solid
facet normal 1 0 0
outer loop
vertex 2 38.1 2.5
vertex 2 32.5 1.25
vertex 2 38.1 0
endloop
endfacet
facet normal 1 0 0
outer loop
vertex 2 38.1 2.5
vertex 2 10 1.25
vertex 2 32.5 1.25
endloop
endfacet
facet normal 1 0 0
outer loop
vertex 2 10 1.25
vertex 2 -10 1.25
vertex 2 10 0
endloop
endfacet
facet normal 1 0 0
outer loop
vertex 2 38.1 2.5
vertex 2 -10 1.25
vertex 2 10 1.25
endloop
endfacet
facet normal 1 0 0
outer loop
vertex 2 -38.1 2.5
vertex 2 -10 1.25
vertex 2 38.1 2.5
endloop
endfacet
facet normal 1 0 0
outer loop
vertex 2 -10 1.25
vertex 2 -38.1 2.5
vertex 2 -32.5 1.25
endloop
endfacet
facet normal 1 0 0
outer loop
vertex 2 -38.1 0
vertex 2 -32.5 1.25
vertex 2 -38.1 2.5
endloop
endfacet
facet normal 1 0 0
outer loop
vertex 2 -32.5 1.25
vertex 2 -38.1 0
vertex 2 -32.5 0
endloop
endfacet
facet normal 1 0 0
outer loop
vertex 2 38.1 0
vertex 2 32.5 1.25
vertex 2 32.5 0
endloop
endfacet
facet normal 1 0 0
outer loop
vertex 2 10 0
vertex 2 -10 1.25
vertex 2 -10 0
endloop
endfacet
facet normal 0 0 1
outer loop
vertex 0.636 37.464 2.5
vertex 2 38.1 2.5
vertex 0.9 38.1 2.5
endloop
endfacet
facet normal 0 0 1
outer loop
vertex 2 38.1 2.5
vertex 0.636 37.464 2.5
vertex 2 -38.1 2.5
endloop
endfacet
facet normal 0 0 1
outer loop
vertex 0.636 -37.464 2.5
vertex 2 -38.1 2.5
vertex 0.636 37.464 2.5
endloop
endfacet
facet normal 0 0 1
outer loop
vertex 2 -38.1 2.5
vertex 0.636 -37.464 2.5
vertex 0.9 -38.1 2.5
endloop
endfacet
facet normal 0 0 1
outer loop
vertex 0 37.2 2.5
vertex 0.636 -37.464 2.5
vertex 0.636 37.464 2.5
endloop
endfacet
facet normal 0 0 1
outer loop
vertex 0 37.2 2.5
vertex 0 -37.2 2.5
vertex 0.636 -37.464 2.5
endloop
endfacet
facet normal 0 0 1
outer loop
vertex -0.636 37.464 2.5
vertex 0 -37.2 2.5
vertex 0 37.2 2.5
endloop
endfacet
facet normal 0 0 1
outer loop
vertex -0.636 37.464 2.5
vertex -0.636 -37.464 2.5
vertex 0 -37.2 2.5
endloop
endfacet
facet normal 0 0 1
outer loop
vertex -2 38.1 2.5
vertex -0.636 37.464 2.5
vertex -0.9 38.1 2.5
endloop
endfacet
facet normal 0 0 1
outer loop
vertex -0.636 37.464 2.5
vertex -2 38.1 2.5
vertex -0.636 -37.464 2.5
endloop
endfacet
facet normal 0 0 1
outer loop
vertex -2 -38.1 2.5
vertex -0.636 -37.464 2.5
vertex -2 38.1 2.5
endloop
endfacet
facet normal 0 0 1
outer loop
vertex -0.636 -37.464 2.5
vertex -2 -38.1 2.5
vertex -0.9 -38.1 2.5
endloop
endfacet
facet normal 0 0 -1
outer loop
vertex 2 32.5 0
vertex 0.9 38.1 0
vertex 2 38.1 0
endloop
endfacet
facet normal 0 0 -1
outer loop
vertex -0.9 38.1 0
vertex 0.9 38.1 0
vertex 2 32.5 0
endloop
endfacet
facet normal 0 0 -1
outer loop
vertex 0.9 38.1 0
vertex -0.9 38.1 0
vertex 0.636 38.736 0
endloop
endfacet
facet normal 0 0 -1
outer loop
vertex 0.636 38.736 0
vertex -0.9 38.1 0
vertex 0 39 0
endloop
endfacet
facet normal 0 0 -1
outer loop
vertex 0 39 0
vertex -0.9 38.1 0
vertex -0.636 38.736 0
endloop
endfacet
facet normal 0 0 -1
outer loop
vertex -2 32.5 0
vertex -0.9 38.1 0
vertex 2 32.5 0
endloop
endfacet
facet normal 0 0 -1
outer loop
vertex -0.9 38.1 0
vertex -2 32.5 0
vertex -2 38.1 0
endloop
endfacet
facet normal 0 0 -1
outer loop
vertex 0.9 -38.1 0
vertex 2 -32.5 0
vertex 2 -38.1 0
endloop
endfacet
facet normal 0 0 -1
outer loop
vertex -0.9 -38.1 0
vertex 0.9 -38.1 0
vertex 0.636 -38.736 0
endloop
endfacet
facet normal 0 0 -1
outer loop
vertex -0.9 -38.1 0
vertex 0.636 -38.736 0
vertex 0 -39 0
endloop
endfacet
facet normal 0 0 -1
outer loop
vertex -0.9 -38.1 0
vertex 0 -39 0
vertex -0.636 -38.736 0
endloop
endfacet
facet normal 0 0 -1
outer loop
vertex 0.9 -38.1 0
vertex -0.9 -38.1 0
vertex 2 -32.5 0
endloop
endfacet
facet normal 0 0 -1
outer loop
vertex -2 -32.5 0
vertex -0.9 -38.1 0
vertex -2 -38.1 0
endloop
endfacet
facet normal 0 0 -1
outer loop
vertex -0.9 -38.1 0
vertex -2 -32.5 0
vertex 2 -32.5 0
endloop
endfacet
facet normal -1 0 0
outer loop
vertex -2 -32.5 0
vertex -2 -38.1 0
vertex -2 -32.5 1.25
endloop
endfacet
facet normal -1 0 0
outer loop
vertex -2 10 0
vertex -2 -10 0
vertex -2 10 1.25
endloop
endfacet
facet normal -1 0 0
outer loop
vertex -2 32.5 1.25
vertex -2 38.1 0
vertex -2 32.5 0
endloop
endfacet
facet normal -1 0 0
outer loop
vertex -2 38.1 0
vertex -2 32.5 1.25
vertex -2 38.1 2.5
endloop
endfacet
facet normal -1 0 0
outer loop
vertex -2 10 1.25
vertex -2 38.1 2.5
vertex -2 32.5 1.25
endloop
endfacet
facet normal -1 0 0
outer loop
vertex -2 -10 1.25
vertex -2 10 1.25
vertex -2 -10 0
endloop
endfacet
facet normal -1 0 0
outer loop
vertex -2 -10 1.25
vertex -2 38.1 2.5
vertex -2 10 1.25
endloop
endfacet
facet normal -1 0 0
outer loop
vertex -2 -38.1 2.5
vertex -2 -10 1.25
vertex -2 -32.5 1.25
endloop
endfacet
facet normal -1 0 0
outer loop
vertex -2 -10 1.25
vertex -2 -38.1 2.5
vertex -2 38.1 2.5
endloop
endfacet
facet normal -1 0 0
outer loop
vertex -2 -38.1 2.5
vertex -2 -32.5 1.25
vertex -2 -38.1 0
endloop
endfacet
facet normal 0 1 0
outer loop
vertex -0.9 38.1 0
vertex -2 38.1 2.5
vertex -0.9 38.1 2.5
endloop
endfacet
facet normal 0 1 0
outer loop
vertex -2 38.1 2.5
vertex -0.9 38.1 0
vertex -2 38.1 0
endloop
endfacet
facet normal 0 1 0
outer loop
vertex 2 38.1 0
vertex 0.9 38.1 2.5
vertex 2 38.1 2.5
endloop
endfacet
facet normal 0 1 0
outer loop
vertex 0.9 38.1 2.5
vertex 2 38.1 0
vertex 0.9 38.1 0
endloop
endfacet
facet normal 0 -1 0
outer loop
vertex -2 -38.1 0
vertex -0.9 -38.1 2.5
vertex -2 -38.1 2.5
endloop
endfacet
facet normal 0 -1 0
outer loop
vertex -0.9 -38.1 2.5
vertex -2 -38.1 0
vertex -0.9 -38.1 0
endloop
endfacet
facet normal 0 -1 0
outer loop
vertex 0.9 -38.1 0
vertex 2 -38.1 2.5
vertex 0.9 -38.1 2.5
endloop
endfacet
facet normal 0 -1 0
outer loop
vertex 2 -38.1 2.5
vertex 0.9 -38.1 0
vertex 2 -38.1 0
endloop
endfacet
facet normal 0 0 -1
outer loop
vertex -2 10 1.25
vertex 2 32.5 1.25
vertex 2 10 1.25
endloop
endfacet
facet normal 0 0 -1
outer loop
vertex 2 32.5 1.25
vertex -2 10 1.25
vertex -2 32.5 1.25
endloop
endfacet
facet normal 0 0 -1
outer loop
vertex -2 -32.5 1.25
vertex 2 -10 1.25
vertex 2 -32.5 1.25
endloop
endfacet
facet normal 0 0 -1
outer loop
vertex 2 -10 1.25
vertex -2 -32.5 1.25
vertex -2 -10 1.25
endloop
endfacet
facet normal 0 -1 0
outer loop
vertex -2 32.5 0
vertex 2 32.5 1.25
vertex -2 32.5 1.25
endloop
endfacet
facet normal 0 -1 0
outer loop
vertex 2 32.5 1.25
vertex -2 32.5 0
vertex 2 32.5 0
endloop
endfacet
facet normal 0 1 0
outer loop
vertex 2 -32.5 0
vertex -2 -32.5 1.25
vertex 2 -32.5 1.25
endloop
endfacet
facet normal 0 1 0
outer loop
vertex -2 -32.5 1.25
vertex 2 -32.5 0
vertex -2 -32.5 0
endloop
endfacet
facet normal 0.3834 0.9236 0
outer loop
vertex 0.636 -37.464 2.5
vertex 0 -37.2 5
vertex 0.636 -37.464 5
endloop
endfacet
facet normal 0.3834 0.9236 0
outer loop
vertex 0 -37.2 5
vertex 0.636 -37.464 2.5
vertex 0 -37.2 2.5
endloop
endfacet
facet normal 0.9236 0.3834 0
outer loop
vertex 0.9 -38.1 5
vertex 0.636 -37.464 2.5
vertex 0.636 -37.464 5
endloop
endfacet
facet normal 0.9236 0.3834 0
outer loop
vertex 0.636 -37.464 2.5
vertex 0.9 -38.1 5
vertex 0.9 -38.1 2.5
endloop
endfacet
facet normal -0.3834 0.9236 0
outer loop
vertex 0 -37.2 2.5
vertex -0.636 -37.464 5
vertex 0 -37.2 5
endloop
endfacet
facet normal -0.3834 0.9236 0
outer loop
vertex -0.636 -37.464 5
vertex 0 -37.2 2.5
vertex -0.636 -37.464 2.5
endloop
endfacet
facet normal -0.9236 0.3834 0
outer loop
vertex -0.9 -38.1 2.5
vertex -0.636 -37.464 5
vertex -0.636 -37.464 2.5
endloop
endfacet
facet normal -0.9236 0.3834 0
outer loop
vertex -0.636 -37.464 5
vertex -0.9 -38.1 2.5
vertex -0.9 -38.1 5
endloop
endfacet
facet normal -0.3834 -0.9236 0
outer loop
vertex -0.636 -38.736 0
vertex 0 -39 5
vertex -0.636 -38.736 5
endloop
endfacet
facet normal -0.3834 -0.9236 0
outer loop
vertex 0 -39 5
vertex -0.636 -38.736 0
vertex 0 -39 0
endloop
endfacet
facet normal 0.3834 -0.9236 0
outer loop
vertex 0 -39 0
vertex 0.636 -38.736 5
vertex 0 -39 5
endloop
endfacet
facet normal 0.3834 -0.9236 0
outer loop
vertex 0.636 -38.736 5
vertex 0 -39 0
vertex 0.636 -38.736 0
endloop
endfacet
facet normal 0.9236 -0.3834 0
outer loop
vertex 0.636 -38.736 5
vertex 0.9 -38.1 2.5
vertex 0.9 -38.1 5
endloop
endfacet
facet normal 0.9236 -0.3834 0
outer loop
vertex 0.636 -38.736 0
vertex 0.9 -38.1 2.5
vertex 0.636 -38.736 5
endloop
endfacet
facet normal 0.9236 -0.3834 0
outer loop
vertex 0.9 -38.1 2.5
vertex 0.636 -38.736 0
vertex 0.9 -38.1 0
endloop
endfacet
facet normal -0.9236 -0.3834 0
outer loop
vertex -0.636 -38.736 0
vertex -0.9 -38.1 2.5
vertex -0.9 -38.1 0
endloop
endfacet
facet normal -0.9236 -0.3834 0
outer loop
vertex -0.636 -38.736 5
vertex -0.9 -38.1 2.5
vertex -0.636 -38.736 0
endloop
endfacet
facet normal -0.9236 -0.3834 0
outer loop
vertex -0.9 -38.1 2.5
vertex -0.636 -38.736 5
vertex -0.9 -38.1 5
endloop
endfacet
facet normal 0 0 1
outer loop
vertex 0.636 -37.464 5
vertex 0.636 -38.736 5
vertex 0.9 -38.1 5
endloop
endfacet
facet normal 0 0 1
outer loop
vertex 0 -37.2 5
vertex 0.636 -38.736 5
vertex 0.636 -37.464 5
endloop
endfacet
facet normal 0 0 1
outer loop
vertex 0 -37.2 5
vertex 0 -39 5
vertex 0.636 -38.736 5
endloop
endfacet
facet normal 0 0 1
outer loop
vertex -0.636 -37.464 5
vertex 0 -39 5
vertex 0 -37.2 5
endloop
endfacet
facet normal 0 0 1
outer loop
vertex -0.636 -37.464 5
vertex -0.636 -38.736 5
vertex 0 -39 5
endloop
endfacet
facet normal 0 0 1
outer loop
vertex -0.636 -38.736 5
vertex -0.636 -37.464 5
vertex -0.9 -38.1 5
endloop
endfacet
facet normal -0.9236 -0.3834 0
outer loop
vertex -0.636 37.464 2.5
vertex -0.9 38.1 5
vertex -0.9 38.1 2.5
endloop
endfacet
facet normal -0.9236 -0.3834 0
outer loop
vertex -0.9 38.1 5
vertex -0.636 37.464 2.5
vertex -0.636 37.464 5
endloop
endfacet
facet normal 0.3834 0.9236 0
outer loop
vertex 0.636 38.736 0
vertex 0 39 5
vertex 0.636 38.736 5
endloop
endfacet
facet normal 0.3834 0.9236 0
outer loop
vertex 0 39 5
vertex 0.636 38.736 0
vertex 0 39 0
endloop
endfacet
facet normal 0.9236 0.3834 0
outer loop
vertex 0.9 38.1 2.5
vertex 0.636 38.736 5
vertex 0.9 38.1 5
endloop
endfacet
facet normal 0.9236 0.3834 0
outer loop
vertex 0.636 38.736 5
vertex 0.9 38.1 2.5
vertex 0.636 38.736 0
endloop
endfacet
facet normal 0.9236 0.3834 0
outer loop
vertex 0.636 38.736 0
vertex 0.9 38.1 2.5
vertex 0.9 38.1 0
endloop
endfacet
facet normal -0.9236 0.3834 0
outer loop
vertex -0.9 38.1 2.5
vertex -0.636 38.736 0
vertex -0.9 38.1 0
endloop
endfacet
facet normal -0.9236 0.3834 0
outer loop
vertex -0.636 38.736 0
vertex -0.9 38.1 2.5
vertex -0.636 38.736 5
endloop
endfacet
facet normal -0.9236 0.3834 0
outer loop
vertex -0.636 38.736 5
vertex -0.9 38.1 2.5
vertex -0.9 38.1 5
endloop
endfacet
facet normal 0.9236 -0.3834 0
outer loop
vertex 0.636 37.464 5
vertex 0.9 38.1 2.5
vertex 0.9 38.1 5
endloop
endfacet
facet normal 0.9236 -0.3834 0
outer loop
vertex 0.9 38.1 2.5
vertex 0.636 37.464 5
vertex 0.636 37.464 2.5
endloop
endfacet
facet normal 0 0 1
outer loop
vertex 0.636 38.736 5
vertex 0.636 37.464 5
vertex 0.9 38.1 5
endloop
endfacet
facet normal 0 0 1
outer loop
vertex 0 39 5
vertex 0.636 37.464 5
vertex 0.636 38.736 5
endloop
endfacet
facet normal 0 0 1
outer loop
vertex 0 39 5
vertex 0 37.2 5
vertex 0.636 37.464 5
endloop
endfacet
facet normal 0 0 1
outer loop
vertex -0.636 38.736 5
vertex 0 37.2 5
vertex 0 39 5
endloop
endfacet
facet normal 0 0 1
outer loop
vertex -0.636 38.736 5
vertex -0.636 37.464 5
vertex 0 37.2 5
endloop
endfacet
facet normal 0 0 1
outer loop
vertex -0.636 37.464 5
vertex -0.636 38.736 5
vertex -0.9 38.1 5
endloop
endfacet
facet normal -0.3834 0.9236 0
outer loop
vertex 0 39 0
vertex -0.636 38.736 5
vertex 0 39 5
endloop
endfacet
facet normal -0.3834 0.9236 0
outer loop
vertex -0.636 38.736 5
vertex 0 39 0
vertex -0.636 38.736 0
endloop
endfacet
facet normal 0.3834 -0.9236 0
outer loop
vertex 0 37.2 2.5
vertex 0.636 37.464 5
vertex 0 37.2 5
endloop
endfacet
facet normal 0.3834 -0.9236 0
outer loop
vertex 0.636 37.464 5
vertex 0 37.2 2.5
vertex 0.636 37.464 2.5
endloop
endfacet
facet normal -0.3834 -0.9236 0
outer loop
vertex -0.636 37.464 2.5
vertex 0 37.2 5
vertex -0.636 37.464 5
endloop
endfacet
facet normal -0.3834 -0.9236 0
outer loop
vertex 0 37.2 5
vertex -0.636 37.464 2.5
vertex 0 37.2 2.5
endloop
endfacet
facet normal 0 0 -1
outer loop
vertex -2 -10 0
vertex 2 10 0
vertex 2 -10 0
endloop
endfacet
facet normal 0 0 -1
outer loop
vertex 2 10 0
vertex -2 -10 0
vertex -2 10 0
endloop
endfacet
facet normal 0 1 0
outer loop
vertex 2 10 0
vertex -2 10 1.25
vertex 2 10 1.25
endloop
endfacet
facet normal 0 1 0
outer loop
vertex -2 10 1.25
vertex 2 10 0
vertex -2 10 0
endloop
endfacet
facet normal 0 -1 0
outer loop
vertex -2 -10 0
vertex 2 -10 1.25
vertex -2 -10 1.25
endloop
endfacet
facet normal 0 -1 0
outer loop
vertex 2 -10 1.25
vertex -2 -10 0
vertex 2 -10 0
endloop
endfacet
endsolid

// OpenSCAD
difference() {
    translate([-4/2, -76.2/2, 0]) cube([4,76.2,2.5]);
    translate([-6/2, -65/2, -1.25]) cube([6,65,2.5]);
}
translate([0,-76.2/2,0]) cylinder(5, 0.9, 0.9, $fn=8);
translate([0,76.2/2,0]) cylinder(5, 0.9, 0.9, $fn=8);
translate([-4/2,-10.0]) cube([4,20,2]);
